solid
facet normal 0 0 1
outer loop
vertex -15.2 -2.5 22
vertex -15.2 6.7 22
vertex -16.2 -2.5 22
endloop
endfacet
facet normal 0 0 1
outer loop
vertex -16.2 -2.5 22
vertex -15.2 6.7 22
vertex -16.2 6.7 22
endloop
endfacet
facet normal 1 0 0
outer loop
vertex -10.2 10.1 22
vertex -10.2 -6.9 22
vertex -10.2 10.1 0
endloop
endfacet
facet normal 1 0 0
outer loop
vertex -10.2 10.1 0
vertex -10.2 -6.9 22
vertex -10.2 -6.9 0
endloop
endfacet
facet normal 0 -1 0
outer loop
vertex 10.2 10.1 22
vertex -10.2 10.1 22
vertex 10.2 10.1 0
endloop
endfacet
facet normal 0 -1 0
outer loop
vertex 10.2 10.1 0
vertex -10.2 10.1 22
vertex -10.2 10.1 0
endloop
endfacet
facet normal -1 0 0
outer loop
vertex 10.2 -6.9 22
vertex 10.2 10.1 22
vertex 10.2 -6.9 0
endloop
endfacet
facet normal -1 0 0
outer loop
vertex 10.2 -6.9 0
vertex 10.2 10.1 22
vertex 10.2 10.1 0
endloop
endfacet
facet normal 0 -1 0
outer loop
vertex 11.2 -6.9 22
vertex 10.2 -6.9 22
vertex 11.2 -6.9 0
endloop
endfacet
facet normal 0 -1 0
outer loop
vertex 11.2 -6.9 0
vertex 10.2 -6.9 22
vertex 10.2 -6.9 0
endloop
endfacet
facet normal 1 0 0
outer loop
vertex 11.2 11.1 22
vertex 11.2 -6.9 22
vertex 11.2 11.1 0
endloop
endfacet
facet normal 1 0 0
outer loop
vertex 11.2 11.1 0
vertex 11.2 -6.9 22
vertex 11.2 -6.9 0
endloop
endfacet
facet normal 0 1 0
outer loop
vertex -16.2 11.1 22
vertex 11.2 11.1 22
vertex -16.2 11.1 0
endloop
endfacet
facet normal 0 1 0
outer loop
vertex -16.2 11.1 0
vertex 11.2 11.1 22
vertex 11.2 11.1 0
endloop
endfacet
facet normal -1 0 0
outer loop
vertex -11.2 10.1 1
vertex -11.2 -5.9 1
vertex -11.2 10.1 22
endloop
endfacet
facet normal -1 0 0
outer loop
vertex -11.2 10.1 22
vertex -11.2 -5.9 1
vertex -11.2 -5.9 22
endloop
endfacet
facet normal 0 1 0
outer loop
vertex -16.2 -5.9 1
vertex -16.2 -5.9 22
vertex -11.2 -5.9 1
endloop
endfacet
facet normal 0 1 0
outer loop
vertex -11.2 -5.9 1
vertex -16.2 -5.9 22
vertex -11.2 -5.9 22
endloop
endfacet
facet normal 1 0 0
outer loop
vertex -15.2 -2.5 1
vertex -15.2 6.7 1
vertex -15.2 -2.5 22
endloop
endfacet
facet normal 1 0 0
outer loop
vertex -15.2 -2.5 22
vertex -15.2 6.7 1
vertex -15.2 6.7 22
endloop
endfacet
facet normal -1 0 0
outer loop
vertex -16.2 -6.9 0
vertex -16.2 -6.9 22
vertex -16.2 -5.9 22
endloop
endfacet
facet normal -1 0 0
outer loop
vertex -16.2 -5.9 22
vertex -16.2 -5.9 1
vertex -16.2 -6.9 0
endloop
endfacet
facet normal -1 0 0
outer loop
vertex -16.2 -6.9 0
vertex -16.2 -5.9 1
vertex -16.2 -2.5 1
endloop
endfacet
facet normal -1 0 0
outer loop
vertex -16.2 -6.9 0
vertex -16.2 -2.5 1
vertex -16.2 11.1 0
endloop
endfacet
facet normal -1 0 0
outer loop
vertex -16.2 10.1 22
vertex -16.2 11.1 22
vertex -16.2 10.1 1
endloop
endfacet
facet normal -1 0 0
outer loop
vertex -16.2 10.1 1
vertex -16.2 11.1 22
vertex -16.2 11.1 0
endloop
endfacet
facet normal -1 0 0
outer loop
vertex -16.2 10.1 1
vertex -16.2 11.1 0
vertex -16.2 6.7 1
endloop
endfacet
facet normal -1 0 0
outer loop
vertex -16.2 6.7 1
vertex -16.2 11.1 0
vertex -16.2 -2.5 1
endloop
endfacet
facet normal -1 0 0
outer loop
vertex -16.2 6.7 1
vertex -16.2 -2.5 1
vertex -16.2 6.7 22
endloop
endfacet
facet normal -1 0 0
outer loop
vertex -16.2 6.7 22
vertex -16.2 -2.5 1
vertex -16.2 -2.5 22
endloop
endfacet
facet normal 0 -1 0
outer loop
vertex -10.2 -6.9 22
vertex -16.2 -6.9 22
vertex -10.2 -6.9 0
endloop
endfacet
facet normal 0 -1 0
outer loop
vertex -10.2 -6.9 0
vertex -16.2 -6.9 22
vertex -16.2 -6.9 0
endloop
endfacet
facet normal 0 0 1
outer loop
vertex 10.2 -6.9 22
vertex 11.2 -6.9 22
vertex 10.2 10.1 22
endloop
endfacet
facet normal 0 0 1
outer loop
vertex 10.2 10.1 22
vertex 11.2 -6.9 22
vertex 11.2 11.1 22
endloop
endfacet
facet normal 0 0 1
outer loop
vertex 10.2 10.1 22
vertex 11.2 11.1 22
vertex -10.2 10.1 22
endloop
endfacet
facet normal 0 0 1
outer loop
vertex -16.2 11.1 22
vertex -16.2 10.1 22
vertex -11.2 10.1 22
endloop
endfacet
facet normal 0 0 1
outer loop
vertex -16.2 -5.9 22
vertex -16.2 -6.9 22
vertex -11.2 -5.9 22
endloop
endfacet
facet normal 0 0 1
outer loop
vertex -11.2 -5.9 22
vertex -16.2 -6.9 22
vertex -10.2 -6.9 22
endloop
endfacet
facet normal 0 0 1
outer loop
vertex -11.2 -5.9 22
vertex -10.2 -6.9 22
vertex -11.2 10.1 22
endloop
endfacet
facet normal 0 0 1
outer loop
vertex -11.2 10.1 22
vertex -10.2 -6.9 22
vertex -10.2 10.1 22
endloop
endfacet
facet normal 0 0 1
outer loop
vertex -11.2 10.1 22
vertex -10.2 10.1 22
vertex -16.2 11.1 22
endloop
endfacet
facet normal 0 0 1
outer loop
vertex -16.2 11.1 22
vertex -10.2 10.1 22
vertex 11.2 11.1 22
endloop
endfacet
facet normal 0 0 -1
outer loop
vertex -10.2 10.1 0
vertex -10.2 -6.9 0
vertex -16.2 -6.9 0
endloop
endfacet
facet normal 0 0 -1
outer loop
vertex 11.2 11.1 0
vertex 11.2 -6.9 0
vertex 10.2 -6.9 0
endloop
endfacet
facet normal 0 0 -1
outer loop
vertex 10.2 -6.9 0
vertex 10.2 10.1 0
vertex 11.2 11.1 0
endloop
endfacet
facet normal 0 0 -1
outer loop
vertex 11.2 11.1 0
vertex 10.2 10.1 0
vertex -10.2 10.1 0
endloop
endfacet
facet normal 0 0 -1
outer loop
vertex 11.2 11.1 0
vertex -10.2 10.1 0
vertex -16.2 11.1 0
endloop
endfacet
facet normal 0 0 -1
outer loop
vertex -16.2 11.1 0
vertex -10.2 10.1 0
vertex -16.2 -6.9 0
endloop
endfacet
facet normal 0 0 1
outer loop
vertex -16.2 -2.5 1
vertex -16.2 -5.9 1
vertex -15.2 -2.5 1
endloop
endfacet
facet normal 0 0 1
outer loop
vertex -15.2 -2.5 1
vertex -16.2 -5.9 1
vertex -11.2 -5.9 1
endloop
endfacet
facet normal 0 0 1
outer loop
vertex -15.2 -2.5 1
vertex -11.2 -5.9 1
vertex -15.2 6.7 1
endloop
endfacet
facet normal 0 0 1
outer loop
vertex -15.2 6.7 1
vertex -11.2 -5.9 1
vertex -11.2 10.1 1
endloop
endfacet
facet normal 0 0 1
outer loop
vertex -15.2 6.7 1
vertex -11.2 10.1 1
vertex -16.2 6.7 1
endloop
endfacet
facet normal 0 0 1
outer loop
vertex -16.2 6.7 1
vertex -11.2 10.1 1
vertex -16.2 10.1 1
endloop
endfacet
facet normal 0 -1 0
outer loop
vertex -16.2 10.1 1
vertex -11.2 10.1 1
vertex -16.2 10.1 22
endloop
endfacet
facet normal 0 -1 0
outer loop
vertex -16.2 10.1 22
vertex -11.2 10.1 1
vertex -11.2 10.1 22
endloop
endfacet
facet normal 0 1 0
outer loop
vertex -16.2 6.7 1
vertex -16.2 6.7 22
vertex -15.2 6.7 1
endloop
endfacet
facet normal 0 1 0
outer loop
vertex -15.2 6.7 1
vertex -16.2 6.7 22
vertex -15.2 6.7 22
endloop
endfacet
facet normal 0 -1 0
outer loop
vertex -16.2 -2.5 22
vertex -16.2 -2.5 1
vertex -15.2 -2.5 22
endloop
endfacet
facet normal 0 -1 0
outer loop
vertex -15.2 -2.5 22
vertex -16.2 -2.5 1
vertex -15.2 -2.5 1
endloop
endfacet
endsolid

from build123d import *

# Parameters (mm, degrees)
BOSS_EXTRUDE2_DEPTH = 22
SKETCH3_W           = 4
SKETCH3_H           = 16
BOSS_EXTRUDE3_DEPTH = 1
SKETCH6_W           = 5
SKETCH6_H           = 1
BOSS_EXTRUDE4_DEPTH = 22
CUT_EXTRUDE1_REACH  = 38.851
SKETCH7_W           = 21
SKETCH7_H           = 3.4


with BuildPart() as part:
    # Sketch2 → Boss-Extrude2 (new body)
    with BuildSketch(Plane.XY):
        Polygon((11.2, -6.9), (11.2, 11.1), (-11.2, 11.1), (-11.2, -5.9), (-15.2, -5.9), (-15.2, 10.1), (-16.2, 10.1), (-16.2, -6.9), (-10.2, -6.9), (-10.2, 10.1), (10.2, 10.1), (10.2, -6.9), align=None)
    extrude(amount=BOSS_EXTRUDE2_DEPTH)

    # Sketch3 → Boss-Extrude3 (add)
    with BuildSketch(Plane(origin=(0, 0, 0), x_dir=(-1, 0, 0), z_dir=(0, 0, -1))):
        with Locations((13.2, 2.1)):
            Rectangle(SKETCH3_W, SKETCH3_H)
    extrude(amount=-BOSS_EXTRUDE3_DEPTH)

    # Sketch6 → Boss-Extrude4 (add)
    with BuildSketch(Plane.XY.offset(22)):
        with Locations((-13.7, 10.6)):
            Rectangle(SKETCH6_W, SKETCH6_H)
    extrude(amount=-BOSS_EXTRUDE4_DEPTH)

    # Sketch7 → Cut-Extrude1 (cut, up to next)
    with BuildSketch(Plane.ZY.offset(16.2), mode=Mode.PRIVATE) as cut_extrude1_sk1:
        with Locations((11.5, -4.2)):
            Rectangle(SKETCH7_W, SKETCH7_H)
    cut_extrude1_tool1 = extrude(cut_extrude1_sk1.sketch, amount=-CUT_EXTRUDE1_REACH, mode=Mode.PRIVATE) & part.part
    # Sketch7 → Cut-Extrude1 (cut, up to next)
    with BuildSketch(Plane.ZY.offset(16.2), mode=Mode.PRIVATE) as cut_extrude1_sk2:
        with Locations((11.5, 8.4)):
            Rectangle(SKETCH7_W, SKETCH7_H)
    cut_extrude1_tool2 = extrude(cut_extrude1_sk2.sketch, amount=-CUT_EXTRUDE1_REACH, mode=Mode.PRIVATE) & part.part
    add(cut_extrude1_tool1.solids().sort_by_distance((-16.2, -4.2, 11.5))[0], mode=Mode.SUBTRACT)
    add(cut_extrude1_tool2.solids().sort_by_distance((-16.2, 8.4, 11.5))[0], mode=Mode.SUBTRACT)


solid = part.part
